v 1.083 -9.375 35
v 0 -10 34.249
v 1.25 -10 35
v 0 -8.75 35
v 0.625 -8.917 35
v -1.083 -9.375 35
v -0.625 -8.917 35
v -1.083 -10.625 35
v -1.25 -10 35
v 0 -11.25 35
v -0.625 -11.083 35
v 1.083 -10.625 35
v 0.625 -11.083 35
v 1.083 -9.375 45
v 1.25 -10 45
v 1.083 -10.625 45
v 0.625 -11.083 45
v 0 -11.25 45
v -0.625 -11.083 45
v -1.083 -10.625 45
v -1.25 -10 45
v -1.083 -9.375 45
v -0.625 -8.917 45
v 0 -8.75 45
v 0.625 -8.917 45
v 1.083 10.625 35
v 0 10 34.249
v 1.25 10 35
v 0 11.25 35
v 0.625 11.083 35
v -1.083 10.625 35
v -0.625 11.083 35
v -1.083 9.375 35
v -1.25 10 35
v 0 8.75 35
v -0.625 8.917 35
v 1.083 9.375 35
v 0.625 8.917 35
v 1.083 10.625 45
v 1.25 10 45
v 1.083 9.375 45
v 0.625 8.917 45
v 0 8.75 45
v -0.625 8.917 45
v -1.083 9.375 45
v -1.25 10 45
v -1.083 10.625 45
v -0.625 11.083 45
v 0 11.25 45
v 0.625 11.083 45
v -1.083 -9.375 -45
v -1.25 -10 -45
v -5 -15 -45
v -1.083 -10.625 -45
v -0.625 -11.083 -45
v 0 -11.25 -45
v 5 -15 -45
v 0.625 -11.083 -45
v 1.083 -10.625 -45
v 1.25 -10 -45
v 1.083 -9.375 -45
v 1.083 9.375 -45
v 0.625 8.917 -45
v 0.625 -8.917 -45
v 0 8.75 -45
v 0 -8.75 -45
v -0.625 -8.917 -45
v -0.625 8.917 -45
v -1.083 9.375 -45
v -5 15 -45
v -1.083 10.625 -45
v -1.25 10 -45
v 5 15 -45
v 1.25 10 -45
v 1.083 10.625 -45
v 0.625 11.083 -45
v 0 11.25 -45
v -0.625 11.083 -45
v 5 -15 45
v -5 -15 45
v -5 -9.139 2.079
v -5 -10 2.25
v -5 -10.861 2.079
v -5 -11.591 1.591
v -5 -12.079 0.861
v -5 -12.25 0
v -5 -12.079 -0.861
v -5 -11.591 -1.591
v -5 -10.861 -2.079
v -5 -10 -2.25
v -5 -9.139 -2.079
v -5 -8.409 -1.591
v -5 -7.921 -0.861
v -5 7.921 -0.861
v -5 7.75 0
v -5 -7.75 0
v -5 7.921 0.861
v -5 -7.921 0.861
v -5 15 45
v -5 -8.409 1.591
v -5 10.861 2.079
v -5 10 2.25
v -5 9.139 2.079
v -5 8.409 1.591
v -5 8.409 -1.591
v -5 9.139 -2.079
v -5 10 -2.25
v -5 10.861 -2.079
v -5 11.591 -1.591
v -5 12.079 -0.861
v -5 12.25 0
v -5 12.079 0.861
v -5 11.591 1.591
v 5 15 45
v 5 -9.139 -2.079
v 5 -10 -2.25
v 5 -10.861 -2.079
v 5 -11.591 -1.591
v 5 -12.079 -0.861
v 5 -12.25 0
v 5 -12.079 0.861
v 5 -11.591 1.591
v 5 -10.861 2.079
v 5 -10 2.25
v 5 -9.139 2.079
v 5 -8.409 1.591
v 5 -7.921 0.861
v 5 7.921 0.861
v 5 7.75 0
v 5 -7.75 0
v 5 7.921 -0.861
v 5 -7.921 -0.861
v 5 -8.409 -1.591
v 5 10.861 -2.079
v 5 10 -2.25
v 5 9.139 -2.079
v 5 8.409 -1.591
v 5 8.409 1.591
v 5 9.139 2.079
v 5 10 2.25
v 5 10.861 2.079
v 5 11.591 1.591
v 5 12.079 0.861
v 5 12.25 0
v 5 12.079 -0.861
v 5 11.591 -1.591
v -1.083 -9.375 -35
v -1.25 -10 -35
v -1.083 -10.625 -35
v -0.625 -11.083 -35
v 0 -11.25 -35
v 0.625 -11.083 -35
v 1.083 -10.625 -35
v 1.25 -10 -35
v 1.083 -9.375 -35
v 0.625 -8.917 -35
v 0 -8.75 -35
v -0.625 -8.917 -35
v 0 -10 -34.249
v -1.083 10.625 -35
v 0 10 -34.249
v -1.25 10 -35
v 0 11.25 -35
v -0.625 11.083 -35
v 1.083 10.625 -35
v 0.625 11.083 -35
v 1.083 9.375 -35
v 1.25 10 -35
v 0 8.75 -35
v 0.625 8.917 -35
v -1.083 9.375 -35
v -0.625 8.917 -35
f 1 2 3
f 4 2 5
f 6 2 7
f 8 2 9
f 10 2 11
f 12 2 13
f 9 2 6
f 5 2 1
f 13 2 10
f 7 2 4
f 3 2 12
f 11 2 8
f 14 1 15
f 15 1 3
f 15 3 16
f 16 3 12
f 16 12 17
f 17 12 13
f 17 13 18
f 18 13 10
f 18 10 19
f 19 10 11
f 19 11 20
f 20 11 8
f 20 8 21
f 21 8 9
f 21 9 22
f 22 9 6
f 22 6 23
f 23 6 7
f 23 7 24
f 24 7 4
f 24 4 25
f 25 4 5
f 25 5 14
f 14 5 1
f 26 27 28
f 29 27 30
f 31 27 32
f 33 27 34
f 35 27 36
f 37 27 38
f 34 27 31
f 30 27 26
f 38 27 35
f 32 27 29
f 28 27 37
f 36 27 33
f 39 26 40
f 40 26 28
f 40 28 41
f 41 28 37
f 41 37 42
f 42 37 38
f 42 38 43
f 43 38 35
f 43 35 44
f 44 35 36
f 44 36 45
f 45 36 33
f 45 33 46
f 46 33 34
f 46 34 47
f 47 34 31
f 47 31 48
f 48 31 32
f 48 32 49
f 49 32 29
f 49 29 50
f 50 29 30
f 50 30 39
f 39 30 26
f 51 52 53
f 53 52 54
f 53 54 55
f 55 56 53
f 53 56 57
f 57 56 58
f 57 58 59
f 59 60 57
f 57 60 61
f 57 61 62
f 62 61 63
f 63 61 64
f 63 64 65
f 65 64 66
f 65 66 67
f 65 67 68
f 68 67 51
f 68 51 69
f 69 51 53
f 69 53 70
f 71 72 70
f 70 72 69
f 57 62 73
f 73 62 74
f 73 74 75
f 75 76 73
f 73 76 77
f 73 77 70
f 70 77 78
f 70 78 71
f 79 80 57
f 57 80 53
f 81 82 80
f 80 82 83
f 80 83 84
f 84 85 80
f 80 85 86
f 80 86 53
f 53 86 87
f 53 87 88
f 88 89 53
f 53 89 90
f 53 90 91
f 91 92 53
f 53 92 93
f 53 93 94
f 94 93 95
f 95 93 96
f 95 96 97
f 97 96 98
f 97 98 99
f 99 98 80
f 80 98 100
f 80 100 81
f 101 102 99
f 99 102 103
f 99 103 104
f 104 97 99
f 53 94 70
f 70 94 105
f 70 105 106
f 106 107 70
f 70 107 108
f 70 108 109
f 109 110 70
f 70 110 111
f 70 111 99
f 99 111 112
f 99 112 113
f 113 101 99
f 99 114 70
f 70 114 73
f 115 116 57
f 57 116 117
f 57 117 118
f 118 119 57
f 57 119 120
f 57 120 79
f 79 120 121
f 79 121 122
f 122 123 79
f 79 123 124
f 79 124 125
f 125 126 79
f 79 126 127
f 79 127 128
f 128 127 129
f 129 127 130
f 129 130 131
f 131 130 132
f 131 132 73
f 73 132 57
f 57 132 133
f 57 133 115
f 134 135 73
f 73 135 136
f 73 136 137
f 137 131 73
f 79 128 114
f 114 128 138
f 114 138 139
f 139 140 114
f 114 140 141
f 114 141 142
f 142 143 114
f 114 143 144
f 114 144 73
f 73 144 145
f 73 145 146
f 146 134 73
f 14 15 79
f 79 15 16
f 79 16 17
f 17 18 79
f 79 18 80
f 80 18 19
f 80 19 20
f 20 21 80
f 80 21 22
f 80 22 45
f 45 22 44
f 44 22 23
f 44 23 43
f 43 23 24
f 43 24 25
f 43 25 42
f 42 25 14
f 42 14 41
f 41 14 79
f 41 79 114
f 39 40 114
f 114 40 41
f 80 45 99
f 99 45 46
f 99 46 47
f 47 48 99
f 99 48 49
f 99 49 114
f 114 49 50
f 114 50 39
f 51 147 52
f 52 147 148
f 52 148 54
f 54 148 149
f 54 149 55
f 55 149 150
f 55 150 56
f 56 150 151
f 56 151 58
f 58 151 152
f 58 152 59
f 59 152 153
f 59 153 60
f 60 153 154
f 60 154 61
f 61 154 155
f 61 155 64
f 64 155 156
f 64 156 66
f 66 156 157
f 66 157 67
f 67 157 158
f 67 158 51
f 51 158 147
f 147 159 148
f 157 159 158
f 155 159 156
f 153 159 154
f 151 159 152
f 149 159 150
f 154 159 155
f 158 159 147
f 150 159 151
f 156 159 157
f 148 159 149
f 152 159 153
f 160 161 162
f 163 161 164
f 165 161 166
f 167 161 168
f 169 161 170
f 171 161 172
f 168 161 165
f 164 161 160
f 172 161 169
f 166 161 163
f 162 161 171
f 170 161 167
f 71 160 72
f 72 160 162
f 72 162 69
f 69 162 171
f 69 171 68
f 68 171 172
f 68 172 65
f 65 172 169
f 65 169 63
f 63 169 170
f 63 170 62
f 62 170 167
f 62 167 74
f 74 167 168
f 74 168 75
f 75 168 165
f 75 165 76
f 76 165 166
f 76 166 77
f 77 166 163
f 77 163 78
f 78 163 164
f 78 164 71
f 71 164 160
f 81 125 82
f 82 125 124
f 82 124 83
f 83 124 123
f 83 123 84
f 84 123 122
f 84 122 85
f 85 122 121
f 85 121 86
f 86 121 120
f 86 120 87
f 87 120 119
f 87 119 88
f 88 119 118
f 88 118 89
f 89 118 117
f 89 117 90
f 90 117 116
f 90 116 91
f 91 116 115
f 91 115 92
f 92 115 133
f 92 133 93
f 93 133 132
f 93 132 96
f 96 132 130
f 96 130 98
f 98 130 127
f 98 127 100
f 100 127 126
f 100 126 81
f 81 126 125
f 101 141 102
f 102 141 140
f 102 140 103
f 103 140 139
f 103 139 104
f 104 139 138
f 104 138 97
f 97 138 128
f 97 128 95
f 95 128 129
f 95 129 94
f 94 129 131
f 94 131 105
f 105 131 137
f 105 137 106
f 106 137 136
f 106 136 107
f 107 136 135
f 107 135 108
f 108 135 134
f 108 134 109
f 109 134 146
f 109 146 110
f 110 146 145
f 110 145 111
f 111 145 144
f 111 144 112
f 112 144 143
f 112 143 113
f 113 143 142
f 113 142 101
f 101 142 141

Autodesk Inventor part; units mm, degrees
ref_plane "YZ Plane" through (0, 0, 0) normal (1, 0, 0) x (0, 1, 0)
ref_plane "XZ Plane" through (0, 0, 0) normal (0, 1, 0) x (-1, 0, 0)
ref_plane "XY Plane" through (0, 0, 0) normal (0, 0, 1) x (1, 0, 0)
sketch "スケッチ1" plane through (0, 0, 0) normal (0, 0, 1) x (1, 0, 0)
  line L0 (-5, -15) -> (5, -15)
  line L1 (5, -15) -> (5, 15)
  line L2 (5, 15) -> (-5, 15)
  line L3 (-5, 15) -> (-5, -15)
  line L4 (-5, -15) -> (5, 15) construction
  line L5 (5, -15) -> (-5, 15) construction
  point P0 (0, 0)
  dimension "d0" = 10
  dimension "d1" = 30
extrude "押し出し1" add sketch "スケッチ1" along normal mid plane 90
sketch "スケッチ2" plane through (0, 0, 45) normal (0, 0, 1) x (1, 0, 0)
  line L0 (5, 15) -> (-5, 15) projected
  line L1 (5, -15) -> (5, 15) projected
  line L2 (-5, -15) -> (5, -15) projected
  point P0 (0, 0)
  point P1 (0, 10)
  point P2 (0, -10)
  dimension "d4" = 5
  dimension "d5" = 5
  dimension "d6" = 5
  dimension "d7" = 5
hole "穴1" at (0, 10, 45) at (0, -10, 45) direction (0, 0, -1) diameter 2.5 depth 10 tip angle 118
sketch "スケッチ3" plane through (0, 0, -45) normal (0, 0, -1) x (-1, 0, 0)
  circle A0 centre (0, 10) radius 1.25 projected
  circle A1 centre (0, -10) radius 1.25 projected
  point P0 (0, 0)
hole "穴2" at (0, 10, -45) at (0, -10, -45) direction (0, 0, 1) diameter 2.5 depth 10 tip angle 118
sketch "スケッチ4" plane through (5, -15, 45) normal (1, 0, 0) x (0, 0, -1)
  line L0 (90, 30) -> (0, 30) projected
  line L1 (0, 0) -> (0, 30) projected
  point P0 (45, 15)
  point P1 (45, 25)
  point P2 (45, 5)
  point P3 (45, 30)
  dimension "d22" = 5
  dimension "d23" = 20
  dimension "d24" = 45
  dimension "d25" = 45
hole "穴3" at (5, 10, 0) at (5, -10, 0) direction (-1, 0, 0) diameter 4.5 end through all
equation "\"d5\" = d4"
equation "\"d6\" = d4"
equation "\"d7\" = d4"
equation "\"d25\" = d24"
properties part number "ベースパーツ_実験装置取り付け部分"
